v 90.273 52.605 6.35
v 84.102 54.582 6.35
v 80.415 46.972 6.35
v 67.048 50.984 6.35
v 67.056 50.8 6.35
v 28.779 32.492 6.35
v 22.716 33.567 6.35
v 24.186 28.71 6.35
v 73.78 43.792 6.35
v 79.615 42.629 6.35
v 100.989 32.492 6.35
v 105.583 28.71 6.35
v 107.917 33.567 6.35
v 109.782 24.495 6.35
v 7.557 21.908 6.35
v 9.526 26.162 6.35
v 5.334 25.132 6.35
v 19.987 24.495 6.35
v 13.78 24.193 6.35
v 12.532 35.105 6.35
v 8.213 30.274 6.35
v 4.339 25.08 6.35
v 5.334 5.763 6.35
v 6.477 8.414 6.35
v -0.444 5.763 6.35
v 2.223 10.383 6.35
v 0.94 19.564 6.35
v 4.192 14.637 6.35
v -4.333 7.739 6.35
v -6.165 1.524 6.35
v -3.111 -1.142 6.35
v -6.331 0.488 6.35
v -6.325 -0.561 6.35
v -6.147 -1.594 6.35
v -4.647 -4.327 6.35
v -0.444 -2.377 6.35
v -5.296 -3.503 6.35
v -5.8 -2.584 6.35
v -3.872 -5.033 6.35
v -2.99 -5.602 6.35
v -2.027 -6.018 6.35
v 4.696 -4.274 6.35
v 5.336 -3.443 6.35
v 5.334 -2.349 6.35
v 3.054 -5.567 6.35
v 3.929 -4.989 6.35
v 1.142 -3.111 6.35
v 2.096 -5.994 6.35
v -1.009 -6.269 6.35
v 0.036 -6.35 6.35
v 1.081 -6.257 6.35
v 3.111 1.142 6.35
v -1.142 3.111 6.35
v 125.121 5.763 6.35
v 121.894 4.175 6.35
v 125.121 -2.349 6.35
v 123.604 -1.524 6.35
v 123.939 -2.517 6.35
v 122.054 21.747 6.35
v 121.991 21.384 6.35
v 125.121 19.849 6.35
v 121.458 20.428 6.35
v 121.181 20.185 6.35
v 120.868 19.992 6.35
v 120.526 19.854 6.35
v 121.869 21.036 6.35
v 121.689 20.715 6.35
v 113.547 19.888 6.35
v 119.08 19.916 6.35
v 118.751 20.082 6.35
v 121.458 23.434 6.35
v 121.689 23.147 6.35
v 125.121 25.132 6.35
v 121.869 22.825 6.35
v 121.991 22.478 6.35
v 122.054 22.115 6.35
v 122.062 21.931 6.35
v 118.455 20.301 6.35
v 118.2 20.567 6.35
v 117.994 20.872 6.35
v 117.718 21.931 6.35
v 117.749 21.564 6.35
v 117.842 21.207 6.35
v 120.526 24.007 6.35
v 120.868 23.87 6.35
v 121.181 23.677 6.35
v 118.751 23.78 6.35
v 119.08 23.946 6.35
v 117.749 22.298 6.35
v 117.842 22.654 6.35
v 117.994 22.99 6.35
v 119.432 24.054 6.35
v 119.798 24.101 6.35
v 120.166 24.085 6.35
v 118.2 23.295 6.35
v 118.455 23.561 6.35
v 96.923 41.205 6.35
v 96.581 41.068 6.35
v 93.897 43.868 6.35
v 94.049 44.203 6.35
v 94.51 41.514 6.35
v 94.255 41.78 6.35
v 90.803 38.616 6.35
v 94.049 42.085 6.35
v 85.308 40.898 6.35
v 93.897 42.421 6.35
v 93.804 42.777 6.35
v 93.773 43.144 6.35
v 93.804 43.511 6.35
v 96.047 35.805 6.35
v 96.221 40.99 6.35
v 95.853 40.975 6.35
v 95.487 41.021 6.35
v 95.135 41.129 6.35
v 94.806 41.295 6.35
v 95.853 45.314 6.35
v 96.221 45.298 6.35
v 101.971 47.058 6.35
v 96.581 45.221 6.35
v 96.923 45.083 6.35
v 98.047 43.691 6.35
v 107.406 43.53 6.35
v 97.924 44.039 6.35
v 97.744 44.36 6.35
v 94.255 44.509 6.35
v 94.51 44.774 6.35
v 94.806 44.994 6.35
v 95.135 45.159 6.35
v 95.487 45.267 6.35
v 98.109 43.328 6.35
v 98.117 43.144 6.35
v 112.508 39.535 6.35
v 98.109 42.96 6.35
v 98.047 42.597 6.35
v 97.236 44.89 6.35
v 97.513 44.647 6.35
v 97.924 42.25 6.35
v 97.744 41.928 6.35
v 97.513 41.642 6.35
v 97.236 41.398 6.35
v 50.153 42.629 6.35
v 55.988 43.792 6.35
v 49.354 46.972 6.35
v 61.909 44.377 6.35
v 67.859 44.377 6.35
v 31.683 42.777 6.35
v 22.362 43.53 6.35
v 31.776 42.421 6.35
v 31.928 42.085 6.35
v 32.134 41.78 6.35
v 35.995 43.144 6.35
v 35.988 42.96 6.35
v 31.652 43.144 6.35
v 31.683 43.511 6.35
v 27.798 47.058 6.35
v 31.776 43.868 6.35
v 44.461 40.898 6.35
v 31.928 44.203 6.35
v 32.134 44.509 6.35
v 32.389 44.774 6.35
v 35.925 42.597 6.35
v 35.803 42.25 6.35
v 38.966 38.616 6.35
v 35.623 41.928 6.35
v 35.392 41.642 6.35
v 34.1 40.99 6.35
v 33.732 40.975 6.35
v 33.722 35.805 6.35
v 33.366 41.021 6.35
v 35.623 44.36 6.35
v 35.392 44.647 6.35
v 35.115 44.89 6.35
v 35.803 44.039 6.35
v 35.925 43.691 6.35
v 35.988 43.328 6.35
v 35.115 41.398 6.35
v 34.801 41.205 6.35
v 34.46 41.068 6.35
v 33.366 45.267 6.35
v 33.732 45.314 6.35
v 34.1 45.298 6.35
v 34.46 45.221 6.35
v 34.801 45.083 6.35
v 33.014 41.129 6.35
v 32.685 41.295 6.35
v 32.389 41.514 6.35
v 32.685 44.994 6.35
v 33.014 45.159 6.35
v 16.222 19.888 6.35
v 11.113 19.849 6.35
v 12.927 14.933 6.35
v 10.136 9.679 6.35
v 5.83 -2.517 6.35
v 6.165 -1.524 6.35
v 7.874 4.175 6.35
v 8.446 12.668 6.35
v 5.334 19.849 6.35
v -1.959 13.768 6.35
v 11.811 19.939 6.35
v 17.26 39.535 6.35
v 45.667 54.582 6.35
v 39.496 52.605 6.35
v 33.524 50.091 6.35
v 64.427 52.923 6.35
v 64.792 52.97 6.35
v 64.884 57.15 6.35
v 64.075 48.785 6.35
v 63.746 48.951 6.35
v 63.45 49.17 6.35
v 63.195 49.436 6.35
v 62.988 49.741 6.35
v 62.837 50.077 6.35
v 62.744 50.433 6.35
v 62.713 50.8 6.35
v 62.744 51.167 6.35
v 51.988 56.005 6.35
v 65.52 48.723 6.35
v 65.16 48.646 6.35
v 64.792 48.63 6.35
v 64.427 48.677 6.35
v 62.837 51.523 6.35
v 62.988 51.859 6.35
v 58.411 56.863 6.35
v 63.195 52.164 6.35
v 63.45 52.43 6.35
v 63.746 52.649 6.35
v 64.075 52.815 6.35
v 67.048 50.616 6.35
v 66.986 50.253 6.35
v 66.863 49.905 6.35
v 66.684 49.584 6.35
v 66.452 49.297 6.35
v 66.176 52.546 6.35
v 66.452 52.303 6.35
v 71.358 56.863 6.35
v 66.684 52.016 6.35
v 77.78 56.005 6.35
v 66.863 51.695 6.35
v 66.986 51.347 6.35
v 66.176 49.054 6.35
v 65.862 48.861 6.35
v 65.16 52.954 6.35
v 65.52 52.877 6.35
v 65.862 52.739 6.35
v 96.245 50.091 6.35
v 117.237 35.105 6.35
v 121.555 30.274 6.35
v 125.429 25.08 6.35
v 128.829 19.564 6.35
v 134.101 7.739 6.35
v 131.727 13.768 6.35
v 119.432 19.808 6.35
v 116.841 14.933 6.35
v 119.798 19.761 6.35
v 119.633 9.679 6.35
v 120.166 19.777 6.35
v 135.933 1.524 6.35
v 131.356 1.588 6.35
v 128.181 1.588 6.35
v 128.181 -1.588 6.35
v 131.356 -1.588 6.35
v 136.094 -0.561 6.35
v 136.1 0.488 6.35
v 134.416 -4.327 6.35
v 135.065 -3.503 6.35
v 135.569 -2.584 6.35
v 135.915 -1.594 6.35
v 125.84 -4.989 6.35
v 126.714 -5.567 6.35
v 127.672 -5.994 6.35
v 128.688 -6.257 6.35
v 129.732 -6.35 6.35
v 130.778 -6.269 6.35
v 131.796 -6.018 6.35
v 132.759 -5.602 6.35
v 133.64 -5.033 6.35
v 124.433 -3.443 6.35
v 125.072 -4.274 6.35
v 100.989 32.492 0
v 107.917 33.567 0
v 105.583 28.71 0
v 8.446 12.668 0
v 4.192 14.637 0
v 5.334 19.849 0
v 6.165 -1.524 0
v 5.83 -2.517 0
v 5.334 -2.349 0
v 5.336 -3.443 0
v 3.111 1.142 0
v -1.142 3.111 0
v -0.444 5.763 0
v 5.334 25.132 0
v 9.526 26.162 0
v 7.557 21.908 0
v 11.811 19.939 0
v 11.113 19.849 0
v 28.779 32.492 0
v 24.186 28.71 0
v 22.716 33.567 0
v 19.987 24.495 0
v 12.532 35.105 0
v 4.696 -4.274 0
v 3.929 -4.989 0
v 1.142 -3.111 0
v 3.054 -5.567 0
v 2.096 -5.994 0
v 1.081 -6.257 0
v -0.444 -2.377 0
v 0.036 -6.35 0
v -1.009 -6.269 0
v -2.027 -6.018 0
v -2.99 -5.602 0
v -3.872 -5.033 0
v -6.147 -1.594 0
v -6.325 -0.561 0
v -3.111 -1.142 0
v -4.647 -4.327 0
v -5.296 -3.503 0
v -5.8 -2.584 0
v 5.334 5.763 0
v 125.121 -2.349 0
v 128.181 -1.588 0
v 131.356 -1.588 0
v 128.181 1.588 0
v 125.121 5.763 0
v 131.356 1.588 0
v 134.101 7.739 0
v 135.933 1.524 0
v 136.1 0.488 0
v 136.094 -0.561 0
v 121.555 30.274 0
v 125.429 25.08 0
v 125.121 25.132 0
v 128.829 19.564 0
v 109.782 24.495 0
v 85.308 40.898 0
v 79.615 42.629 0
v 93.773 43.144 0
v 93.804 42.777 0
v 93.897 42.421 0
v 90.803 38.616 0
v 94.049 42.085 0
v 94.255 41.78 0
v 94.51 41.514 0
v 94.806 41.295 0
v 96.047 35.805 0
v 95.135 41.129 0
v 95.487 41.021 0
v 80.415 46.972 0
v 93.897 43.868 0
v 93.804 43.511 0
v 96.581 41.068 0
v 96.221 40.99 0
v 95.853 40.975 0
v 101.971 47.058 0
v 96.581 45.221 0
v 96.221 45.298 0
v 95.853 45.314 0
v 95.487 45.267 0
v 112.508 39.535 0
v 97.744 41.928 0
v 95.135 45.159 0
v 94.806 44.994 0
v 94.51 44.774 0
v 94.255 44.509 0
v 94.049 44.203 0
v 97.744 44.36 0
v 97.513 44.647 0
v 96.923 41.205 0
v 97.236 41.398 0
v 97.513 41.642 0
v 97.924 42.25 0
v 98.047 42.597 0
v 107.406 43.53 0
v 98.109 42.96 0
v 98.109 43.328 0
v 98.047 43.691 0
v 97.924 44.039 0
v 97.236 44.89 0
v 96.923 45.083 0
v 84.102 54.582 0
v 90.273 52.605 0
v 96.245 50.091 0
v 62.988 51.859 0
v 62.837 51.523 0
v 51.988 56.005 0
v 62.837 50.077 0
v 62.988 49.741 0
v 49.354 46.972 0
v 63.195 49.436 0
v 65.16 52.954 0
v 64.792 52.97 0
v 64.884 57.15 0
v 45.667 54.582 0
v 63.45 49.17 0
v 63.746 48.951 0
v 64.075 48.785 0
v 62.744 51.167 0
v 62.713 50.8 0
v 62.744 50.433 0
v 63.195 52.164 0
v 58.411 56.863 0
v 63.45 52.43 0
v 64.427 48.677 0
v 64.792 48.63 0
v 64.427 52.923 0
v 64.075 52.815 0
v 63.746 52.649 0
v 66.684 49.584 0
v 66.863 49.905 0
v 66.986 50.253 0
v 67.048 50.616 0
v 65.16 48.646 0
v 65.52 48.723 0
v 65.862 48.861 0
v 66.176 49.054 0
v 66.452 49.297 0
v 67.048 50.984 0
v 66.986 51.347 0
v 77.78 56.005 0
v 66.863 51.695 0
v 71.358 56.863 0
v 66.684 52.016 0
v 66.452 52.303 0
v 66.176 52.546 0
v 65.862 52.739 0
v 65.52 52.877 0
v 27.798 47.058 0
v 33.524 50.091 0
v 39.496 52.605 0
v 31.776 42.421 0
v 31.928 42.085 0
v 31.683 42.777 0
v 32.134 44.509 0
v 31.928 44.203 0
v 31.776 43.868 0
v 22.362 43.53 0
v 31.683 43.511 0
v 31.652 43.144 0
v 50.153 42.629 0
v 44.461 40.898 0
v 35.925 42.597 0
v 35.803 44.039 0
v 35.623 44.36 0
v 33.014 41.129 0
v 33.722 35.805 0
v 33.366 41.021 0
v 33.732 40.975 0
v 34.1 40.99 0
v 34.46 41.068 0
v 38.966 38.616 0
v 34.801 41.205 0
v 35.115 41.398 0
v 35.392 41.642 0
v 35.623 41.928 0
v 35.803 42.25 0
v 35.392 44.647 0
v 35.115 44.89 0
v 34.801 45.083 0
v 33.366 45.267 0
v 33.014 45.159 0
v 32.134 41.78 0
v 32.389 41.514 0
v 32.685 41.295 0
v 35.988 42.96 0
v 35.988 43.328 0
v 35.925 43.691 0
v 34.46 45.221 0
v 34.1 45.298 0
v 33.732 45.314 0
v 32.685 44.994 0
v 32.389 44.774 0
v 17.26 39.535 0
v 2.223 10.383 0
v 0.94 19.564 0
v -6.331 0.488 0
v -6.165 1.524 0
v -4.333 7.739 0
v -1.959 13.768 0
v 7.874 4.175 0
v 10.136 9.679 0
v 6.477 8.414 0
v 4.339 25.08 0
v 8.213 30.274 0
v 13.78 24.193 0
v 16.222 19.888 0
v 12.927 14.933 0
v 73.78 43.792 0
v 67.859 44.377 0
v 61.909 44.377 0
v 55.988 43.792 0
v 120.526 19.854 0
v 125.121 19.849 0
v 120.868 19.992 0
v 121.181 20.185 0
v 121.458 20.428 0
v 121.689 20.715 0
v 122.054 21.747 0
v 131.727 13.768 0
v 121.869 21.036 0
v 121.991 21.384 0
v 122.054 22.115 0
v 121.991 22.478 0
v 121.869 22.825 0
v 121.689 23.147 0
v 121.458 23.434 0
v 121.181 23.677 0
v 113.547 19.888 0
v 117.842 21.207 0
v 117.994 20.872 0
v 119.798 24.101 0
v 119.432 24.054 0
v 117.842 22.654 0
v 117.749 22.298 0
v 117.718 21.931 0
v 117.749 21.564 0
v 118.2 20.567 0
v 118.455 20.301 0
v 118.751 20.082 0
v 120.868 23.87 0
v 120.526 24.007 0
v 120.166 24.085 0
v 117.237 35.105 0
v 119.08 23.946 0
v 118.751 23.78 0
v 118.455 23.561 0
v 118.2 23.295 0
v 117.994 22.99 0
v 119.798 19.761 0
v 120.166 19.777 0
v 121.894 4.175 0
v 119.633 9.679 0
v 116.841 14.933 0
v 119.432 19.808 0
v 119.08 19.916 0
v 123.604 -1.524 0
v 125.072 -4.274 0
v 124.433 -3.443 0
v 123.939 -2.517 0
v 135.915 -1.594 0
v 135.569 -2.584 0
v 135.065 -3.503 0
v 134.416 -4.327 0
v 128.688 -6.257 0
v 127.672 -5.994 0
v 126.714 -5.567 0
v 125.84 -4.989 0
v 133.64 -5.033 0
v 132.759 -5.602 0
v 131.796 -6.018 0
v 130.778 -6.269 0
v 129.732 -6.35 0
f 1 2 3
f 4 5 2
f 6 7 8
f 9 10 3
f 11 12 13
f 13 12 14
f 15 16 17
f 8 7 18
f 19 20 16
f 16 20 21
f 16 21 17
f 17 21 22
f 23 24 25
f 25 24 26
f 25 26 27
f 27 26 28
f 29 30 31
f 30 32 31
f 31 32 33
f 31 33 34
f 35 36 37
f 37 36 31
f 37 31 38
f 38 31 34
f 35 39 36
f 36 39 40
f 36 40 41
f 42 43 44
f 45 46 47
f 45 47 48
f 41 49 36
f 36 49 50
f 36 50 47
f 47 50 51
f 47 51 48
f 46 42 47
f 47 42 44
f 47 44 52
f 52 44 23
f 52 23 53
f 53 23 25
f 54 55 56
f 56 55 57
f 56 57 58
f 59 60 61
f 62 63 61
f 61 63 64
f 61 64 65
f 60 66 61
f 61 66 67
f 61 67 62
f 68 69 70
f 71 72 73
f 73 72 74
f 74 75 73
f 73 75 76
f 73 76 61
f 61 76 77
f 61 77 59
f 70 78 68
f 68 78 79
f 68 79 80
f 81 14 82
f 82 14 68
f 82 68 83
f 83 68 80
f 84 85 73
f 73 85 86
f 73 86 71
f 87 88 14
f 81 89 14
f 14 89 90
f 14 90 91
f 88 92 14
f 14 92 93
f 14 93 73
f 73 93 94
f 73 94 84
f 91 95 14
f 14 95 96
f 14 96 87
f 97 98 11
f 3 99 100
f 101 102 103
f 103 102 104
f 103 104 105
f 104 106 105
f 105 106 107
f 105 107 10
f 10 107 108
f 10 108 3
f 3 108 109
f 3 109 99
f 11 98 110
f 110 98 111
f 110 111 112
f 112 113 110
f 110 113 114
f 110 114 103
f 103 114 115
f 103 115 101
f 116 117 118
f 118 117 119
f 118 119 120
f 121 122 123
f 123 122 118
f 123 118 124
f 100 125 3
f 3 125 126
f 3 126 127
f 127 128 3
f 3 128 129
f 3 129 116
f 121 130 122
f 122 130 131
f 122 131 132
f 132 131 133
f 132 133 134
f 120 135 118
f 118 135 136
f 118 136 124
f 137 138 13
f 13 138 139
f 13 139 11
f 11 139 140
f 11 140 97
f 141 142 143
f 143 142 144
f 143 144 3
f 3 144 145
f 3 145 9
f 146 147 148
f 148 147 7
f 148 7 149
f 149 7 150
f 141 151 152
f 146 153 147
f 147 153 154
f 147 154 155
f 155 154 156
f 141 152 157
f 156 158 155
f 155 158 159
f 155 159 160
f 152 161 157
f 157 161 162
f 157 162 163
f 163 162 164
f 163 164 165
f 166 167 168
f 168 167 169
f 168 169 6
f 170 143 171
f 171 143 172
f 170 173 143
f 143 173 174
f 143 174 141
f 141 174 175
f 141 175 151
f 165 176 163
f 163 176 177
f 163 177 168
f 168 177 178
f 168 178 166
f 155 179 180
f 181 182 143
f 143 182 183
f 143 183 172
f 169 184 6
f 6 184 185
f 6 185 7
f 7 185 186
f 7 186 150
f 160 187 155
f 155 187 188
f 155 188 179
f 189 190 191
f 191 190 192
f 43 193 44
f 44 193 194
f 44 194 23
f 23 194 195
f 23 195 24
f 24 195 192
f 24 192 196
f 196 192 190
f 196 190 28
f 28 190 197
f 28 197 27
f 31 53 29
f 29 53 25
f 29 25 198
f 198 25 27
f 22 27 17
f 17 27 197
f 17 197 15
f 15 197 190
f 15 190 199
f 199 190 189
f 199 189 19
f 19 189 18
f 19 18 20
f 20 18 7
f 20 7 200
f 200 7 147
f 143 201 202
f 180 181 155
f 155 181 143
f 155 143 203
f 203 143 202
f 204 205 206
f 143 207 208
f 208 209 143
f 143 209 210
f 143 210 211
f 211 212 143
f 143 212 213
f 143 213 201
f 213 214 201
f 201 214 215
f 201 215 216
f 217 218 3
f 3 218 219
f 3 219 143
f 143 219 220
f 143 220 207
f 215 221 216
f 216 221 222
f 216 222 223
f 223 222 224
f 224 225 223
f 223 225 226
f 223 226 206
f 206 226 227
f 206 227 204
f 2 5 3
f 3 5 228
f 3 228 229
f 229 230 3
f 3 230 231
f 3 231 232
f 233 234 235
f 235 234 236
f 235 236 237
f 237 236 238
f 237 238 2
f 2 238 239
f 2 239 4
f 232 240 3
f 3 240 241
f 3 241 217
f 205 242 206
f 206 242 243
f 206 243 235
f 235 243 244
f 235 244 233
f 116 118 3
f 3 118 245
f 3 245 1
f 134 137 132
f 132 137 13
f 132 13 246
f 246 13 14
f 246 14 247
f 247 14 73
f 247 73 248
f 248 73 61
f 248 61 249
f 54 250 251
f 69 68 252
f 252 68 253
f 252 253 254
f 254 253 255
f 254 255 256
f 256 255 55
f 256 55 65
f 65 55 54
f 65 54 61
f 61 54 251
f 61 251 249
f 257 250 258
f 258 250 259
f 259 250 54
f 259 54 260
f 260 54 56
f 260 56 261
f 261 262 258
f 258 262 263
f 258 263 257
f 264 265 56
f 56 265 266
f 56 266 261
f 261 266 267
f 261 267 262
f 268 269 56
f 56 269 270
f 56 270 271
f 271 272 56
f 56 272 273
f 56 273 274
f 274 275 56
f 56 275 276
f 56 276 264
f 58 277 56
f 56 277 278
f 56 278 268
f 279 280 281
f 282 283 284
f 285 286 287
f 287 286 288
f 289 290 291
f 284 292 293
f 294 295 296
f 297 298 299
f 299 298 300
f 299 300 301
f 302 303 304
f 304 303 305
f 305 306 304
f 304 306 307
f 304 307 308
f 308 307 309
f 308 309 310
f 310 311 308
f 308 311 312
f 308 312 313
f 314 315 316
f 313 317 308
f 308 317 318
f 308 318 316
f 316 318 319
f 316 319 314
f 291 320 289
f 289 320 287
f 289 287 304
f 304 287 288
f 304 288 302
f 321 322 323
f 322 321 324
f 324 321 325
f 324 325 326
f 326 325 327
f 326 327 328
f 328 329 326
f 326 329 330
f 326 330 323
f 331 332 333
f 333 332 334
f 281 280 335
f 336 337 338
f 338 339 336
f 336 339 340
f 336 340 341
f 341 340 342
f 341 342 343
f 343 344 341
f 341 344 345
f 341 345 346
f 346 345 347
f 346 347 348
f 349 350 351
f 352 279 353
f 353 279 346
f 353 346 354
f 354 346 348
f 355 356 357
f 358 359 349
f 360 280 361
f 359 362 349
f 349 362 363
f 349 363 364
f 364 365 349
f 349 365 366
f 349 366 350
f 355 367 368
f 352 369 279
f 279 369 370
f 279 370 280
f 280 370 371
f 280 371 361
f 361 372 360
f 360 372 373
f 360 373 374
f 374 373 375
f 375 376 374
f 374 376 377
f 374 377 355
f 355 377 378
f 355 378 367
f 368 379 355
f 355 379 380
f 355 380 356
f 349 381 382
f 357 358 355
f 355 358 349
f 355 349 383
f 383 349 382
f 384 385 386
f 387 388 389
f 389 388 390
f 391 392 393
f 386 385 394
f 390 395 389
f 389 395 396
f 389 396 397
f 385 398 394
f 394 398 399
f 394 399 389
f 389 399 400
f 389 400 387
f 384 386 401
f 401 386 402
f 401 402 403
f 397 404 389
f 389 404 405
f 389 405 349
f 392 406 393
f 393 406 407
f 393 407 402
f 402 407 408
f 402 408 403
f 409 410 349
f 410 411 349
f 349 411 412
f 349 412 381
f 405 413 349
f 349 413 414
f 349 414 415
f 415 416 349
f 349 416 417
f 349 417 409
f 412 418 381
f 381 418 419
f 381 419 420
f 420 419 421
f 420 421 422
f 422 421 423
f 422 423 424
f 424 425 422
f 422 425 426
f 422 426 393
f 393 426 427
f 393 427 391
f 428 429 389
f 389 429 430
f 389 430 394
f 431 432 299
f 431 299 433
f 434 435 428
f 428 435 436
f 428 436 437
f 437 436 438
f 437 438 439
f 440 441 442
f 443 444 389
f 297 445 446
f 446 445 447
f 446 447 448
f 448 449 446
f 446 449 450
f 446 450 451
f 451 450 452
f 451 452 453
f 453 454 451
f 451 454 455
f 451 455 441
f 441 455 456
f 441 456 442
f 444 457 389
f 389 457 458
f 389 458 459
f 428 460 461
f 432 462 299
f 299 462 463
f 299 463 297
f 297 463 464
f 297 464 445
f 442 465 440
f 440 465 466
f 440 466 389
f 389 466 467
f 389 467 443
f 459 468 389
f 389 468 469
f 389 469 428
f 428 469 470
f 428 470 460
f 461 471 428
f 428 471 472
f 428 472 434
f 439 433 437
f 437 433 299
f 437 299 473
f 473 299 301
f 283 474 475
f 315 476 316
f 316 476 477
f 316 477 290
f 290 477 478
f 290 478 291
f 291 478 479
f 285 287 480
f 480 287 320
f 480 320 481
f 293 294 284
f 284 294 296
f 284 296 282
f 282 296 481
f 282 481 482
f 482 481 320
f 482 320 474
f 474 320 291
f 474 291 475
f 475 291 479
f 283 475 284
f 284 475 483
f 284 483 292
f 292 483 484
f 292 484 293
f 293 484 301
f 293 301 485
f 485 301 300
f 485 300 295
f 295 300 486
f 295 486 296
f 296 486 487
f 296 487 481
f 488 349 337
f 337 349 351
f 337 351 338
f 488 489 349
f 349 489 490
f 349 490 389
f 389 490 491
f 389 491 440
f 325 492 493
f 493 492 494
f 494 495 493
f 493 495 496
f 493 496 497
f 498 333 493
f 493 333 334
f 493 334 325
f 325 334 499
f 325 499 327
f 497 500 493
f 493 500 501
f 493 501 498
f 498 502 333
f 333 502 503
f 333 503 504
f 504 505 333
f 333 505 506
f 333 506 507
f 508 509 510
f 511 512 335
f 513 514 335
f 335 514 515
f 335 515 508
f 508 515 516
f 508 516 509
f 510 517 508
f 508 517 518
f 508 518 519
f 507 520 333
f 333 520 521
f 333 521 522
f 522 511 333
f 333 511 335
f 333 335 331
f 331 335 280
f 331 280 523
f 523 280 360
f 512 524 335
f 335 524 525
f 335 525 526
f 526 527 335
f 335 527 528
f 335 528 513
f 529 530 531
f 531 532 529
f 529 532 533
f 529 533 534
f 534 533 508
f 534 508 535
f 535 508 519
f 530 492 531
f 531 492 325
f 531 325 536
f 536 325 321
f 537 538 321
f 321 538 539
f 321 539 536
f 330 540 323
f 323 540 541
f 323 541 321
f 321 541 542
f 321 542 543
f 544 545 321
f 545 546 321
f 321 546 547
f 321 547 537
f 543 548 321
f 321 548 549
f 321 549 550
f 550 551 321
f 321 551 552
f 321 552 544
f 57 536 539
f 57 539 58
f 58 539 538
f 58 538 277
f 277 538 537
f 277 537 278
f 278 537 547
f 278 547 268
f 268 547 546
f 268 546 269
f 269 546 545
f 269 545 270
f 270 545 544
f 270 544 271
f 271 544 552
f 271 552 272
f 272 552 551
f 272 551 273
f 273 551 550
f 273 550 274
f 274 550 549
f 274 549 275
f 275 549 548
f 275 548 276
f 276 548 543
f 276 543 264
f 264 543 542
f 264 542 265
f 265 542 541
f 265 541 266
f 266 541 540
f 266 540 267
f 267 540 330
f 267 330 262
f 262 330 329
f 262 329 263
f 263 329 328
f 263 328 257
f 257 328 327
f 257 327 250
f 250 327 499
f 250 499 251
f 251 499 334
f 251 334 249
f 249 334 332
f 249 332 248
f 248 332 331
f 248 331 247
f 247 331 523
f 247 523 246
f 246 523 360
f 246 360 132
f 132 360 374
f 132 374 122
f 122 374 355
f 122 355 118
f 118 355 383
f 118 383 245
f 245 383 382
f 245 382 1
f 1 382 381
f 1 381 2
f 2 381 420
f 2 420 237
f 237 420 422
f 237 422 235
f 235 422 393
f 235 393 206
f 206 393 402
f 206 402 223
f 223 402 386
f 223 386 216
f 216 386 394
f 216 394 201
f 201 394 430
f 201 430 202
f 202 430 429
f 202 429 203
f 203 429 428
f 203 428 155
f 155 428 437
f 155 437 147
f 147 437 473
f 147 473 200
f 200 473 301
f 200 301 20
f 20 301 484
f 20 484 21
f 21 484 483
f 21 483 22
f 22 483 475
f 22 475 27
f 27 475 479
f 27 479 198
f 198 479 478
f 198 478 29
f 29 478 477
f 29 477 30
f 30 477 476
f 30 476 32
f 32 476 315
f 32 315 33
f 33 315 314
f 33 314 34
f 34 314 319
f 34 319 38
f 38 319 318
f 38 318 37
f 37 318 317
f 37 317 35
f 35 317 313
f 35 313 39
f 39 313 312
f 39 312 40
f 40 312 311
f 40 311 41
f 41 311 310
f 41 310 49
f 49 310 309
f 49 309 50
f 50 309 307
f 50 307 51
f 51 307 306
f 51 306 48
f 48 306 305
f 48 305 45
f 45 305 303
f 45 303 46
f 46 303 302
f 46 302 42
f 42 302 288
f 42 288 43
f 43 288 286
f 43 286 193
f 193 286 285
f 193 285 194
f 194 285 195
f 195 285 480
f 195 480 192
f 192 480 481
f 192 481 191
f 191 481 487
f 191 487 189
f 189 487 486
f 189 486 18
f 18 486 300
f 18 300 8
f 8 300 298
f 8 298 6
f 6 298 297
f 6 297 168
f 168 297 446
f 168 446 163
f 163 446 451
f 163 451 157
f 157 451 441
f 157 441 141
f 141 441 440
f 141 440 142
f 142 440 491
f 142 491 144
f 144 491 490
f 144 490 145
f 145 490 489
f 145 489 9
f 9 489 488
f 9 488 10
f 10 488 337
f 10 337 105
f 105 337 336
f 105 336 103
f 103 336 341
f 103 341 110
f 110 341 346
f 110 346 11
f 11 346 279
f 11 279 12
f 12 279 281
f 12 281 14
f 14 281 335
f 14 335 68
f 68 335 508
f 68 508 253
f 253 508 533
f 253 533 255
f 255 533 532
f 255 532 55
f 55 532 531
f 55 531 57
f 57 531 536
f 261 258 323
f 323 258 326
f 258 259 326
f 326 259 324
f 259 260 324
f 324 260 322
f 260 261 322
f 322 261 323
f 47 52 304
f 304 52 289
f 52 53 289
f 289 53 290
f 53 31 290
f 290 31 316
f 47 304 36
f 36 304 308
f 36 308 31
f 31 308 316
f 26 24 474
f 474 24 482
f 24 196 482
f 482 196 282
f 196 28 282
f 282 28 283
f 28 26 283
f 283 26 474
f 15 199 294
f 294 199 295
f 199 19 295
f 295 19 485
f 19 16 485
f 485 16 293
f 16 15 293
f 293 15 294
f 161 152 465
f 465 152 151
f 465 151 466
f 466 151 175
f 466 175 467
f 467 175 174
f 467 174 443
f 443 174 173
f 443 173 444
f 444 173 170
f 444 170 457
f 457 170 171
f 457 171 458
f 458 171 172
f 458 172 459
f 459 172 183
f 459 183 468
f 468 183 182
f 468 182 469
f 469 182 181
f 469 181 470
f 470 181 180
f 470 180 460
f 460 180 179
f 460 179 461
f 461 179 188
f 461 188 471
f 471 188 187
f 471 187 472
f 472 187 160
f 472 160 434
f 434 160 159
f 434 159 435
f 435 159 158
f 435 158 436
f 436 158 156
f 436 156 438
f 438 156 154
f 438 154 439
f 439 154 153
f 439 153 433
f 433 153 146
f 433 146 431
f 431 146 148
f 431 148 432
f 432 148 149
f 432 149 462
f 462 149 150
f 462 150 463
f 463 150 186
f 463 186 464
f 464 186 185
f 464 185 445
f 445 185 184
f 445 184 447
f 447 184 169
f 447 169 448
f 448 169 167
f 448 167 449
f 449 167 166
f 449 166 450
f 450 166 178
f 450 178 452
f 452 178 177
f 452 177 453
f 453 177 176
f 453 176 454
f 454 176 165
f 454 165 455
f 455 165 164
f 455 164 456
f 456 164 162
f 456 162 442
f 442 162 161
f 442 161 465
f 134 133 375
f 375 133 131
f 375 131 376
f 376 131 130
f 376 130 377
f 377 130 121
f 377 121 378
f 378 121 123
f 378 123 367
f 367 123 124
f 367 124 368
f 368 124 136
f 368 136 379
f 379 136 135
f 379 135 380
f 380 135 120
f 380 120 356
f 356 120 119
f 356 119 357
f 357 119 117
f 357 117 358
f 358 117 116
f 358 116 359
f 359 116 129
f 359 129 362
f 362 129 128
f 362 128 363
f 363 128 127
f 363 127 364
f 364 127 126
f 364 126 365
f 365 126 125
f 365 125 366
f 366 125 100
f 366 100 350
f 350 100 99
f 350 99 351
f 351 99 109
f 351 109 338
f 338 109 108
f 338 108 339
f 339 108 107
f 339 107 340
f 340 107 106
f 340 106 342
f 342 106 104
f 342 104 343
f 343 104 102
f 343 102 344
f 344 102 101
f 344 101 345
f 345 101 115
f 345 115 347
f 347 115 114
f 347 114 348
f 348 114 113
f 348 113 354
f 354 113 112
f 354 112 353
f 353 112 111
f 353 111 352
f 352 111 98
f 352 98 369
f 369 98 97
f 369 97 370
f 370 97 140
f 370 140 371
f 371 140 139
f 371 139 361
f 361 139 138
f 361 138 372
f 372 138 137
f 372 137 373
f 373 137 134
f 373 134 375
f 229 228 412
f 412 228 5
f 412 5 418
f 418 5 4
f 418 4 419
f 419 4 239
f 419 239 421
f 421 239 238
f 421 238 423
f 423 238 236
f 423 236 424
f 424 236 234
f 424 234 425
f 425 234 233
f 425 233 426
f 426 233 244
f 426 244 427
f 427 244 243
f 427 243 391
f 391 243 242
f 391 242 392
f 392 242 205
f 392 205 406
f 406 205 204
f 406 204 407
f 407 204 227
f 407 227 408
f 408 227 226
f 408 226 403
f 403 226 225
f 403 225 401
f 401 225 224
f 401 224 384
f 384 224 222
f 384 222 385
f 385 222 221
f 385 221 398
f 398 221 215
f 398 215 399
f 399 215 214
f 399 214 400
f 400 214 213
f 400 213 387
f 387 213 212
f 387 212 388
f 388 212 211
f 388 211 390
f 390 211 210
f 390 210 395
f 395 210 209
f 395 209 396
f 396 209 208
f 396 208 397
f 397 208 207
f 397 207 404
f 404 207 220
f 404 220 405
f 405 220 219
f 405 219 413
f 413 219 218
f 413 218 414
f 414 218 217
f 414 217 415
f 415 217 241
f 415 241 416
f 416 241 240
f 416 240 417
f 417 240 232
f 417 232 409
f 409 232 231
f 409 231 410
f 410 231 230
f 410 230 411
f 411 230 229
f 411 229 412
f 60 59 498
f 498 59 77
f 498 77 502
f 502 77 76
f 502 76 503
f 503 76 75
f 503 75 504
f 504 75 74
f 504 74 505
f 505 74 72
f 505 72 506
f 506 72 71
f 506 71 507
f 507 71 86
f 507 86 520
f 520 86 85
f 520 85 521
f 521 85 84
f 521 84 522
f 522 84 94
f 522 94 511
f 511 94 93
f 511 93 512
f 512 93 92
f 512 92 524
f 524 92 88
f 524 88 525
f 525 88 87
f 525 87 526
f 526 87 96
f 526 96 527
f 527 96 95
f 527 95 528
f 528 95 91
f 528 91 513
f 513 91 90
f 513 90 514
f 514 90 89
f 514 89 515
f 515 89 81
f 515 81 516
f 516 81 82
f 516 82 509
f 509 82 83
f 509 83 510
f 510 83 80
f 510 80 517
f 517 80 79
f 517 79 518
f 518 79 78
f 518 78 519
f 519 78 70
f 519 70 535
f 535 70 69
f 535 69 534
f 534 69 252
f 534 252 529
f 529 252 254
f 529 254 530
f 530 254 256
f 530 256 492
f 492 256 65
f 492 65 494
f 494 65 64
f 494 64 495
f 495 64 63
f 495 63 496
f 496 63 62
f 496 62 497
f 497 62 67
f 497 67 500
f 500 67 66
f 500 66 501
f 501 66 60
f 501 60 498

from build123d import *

# Parameters (mm, degrees)
SKETCH2_W           = 3.175
SKETCH2_H           = 3.175
BOSS_EXTRUDE1_DEPTH = 6.35
SKETCH5_R           = 2.1717
CUT_EXTRUDE1_DEPTH  = 25.4


with BuildPart() as part:
    # Sketch2 → Boss-Extrude1 (new body)
    with BuildSketch(Plane.XY):
        with BuildLine():
            ThreePointArc((135.933103671, 1.523612314), (64.8843, 57.15), (-6.164503671, 1.523612314))
            ThreePointArc((-6.164503671, 1.523612314), (-1.523612314, -6.164503671), (6.164503671, -1.523612314))
            ThreePointArc((6.164503671, -1.523612314), (64.8843, 44.45), (123.604096329, -1.523612314))
            ThreePointArc((123.604096329, -1.523612314), (131.292212314, -6.164503671), (135.933103671, 1.523612314))
        make_face()
        Polygon((-1.142495341, 3.111345083), (3.111345083, 1.142495341), (1.142495341, -3.111345083), (-3.111345083, -1.142495341), align=None, mode=Mode.SUBTRACT)
        with Locations((129.7686, 0)):
            Rectangle(SKETCH2_W, SKETCH2_H, mode=Mode.SUBTRACT)
        Polygon((4.191911882, 14.636713109), (2.223061999, 10.38287238), (6.476902727, 8.414022496), (8.445752611, 12.667863225), align=None, mode=Mode.SUBTRACT)
        Polygon((9.526319716, 26.162080852), (7.55746908, 21.9082401), (11.811310114, 19.939390075), (13.780159857, 24.193230498), align=None, mode=Mode.SUBTRACT)
    extrude(amount=BOSS_EXTRUDE1_DEPTH)

    # Sketch5 → Cut-Extrude1 (cut)
    with BuildSketch(Plane(origin=(0, 0, 0), x_dir=(-1, 0, 0), z_dir=(0, 0, -1))):
        with Locations((-64.8843, 50.8)):
            Circle(SKETCH5_R)
        with Locations((-33.823719996, 43.144254616)):
            Circle(SKETCH5_R)
        with Locations((-119.889855449, 21.93085747)):
            Circle(SKETCH5_R)
        with Locations((-95.944880004, 43.144254616)):
            Circle(SKETCH5_R)
    extrude(amount=-CUT_EXTRUDE1_DEPTH, mode=Mode.SUBTRACT)


solid = part.part
